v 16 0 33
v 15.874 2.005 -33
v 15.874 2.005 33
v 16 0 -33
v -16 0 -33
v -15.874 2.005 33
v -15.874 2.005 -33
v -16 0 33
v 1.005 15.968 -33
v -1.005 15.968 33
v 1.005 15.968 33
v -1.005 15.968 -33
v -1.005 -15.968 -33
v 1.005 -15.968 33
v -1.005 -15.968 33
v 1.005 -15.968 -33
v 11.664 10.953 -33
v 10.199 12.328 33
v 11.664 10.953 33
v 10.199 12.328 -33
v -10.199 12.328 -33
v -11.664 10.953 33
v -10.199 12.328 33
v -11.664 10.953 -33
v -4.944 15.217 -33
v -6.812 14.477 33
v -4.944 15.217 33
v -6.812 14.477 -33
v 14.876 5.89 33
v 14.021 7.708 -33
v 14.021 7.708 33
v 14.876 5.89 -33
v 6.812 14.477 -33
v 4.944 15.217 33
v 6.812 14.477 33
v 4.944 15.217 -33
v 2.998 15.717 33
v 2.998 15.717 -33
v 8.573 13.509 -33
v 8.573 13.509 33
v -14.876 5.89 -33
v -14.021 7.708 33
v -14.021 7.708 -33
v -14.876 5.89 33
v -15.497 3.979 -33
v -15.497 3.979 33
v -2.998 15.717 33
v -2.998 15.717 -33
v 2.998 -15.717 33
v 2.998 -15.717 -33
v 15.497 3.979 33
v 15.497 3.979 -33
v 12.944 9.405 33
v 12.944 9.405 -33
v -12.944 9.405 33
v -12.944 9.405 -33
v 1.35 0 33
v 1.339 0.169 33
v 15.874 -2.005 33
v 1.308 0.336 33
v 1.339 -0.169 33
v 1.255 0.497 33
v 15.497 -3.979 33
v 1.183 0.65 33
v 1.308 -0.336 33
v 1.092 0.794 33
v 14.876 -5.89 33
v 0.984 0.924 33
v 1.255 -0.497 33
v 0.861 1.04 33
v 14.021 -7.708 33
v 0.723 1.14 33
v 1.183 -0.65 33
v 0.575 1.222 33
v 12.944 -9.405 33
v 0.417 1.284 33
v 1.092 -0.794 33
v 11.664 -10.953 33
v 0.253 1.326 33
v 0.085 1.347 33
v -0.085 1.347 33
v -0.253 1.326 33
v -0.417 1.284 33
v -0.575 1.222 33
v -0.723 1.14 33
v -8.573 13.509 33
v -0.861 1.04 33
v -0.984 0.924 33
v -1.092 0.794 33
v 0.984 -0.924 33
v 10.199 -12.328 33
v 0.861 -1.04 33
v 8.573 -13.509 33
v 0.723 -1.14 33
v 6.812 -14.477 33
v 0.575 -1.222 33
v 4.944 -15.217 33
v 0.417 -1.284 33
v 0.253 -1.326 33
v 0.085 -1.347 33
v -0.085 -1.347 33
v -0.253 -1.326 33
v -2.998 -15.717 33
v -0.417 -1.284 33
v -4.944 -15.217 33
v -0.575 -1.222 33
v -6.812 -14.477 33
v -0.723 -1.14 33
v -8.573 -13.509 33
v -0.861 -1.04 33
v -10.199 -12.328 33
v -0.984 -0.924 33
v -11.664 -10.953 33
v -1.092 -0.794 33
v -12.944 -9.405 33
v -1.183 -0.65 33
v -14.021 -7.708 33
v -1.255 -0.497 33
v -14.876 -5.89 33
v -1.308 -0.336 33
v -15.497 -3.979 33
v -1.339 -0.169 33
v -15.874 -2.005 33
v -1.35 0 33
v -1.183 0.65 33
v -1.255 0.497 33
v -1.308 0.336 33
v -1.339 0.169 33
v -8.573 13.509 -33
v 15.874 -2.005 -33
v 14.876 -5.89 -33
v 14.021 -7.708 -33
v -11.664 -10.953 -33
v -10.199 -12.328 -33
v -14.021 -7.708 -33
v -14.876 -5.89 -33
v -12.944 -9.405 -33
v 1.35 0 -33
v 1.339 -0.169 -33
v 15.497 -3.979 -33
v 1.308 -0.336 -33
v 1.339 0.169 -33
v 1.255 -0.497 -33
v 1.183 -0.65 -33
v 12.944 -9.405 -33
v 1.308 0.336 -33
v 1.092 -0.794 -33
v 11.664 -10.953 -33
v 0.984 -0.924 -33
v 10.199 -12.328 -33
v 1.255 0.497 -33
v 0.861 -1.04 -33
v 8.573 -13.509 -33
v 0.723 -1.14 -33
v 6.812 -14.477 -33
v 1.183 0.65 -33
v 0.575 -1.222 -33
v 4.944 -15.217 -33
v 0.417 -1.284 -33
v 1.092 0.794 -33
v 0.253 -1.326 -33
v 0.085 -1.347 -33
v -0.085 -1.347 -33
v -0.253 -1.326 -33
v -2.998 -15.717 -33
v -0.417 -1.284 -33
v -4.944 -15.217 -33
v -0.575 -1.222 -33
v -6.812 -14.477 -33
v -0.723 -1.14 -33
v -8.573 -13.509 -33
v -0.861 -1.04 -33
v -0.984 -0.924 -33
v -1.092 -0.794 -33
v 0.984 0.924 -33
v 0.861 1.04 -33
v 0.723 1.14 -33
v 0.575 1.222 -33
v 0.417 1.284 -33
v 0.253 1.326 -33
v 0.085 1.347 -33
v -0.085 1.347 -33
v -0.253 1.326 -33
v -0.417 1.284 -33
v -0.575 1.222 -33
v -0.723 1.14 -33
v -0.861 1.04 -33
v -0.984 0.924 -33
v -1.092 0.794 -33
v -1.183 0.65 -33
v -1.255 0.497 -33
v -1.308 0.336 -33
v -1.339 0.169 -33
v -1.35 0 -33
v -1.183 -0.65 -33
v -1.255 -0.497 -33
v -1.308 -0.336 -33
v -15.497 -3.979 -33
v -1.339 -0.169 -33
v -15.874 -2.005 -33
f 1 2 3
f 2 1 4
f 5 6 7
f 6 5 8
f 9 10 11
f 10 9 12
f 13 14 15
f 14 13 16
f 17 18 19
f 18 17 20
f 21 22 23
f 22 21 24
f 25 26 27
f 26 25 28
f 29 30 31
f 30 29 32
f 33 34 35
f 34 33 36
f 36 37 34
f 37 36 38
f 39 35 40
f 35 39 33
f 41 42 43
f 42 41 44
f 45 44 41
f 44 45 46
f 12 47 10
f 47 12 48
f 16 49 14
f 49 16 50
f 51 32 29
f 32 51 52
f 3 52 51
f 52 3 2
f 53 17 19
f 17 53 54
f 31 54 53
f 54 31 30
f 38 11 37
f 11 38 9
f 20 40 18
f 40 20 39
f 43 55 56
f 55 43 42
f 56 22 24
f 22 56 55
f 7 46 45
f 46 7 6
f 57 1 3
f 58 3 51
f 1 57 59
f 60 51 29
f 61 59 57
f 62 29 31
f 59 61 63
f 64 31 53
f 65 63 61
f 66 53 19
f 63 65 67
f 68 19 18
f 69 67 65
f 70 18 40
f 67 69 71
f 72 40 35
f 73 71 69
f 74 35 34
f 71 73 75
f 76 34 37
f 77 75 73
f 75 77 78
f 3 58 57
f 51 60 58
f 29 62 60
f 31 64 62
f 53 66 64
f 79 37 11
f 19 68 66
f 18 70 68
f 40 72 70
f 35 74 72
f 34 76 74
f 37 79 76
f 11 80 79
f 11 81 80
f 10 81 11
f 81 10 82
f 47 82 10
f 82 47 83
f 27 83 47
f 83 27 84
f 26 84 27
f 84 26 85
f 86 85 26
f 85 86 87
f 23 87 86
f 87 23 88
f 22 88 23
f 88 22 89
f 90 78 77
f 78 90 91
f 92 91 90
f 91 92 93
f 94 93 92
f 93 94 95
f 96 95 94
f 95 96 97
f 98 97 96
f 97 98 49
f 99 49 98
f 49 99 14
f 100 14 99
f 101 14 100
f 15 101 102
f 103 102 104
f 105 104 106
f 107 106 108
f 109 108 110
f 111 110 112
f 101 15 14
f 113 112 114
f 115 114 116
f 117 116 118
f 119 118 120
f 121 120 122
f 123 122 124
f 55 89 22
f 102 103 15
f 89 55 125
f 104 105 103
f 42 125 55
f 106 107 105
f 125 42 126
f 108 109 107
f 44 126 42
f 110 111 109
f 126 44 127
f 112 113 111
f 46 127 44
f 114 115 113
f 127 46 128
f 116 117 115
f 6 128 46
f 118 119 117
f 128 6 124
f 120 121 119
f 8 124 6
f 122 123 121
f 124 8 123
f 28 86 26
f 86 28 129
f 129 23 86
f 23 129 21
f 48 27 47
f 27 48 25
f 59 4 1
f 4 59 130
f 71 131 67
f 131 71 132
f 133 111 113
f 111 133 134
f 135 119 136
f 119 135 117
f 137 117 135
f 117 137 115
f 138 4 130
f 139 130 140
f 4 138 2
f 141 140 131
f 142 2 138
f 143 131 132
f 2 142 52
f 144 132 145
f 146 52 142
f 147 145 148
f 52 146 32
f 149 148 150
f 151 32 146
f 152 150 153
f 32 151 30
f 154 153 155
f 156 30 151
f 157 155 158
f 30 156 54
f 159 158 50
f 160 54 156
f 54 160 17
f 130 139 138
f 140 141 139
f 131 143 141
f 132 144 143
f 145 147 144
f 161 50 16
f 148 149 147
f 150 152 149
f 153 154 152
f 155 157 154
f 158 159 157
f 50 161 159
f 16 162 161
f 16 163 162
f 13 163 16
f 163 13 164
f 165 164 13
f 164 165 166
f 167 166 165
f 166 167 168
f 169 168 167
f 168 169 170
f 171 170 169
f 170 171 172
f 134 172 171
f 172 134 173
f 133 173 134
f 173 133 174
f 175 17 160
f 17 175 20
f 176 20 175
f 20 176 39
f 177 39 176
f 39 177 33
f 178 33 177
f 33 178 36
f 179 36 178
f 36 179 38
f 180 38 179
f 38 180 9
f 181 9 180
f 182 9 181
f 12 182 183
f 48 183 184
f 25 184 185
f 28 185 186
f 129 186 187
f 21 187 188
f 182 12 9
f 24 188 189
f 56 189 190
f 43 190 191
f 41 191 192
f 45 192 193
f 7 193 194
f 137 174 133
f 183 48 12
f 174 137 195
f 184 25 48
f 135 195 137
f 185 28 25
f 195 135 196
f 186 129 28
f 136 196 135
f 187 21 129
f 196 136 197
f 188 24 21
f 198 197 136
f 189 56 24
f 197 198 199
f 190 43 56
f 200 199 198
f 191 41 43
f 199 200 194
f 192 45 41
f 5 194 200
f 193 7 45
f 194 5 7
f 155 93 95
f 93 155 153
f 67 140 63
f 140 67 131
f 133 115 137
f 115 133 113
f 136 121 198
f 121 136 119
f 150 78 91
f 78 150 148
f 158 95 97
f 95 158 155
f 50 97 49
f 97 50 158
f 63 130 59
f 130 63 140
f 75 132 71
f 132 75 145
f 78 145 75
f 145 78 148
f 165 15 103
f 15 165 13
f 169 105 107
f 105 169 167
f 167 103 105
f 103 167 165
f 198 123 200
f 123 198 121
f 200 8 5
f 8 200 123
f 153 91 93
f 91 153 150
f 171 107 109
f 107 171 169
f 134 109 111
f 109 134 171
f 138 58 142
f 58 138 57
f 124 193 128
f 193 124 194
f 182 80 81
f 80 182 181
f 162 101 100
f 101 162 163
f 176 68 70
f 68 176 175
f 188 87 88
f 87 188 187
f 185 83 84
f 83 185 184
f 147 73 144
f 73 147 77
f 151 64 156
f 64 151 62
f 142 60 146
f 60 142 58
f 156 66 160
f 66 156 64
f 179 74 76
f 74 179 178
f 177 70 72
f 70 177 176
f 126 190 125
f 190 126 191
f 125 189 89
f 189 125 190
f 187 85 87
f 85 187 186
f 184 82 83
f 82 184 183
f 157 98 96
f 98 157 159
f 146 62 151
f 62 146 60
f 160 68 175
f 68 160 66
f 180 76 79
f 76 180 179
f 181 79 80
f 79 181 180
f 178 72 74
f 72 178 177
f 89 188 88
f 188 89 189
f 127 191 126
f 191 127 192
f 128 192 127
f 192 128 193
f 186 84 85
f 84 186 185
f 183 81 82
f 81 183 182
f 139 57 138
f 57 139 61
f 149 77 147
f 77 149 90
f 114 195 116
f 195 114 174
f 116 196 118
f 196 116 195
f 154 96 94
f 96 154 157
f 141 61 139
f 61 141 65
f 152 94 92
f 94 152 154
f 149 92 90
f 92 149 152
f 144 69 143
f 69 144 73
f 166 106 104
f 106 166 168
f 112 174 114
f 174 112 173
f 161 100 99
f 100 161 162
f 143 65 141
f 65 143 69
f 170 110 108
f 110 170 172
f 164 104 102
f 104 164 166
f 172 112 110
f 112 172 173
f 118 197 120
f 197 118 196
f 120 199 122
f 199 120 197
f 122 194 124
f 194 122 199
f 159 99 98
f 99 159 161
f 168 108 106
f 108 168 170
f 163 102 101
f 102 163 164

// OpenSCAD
$fn = 50;


difference() {
	union() {
		translate(v = [0, 0, -33.0000000000]) {
			cylinder(h = 66, r = 16.0000000000);
		}
	}
	union() {
		translate(v = [0, 0, -100.0000000000]) {
			cylinder(h = 200, r = 1.3500000000);
		}
	}
}
